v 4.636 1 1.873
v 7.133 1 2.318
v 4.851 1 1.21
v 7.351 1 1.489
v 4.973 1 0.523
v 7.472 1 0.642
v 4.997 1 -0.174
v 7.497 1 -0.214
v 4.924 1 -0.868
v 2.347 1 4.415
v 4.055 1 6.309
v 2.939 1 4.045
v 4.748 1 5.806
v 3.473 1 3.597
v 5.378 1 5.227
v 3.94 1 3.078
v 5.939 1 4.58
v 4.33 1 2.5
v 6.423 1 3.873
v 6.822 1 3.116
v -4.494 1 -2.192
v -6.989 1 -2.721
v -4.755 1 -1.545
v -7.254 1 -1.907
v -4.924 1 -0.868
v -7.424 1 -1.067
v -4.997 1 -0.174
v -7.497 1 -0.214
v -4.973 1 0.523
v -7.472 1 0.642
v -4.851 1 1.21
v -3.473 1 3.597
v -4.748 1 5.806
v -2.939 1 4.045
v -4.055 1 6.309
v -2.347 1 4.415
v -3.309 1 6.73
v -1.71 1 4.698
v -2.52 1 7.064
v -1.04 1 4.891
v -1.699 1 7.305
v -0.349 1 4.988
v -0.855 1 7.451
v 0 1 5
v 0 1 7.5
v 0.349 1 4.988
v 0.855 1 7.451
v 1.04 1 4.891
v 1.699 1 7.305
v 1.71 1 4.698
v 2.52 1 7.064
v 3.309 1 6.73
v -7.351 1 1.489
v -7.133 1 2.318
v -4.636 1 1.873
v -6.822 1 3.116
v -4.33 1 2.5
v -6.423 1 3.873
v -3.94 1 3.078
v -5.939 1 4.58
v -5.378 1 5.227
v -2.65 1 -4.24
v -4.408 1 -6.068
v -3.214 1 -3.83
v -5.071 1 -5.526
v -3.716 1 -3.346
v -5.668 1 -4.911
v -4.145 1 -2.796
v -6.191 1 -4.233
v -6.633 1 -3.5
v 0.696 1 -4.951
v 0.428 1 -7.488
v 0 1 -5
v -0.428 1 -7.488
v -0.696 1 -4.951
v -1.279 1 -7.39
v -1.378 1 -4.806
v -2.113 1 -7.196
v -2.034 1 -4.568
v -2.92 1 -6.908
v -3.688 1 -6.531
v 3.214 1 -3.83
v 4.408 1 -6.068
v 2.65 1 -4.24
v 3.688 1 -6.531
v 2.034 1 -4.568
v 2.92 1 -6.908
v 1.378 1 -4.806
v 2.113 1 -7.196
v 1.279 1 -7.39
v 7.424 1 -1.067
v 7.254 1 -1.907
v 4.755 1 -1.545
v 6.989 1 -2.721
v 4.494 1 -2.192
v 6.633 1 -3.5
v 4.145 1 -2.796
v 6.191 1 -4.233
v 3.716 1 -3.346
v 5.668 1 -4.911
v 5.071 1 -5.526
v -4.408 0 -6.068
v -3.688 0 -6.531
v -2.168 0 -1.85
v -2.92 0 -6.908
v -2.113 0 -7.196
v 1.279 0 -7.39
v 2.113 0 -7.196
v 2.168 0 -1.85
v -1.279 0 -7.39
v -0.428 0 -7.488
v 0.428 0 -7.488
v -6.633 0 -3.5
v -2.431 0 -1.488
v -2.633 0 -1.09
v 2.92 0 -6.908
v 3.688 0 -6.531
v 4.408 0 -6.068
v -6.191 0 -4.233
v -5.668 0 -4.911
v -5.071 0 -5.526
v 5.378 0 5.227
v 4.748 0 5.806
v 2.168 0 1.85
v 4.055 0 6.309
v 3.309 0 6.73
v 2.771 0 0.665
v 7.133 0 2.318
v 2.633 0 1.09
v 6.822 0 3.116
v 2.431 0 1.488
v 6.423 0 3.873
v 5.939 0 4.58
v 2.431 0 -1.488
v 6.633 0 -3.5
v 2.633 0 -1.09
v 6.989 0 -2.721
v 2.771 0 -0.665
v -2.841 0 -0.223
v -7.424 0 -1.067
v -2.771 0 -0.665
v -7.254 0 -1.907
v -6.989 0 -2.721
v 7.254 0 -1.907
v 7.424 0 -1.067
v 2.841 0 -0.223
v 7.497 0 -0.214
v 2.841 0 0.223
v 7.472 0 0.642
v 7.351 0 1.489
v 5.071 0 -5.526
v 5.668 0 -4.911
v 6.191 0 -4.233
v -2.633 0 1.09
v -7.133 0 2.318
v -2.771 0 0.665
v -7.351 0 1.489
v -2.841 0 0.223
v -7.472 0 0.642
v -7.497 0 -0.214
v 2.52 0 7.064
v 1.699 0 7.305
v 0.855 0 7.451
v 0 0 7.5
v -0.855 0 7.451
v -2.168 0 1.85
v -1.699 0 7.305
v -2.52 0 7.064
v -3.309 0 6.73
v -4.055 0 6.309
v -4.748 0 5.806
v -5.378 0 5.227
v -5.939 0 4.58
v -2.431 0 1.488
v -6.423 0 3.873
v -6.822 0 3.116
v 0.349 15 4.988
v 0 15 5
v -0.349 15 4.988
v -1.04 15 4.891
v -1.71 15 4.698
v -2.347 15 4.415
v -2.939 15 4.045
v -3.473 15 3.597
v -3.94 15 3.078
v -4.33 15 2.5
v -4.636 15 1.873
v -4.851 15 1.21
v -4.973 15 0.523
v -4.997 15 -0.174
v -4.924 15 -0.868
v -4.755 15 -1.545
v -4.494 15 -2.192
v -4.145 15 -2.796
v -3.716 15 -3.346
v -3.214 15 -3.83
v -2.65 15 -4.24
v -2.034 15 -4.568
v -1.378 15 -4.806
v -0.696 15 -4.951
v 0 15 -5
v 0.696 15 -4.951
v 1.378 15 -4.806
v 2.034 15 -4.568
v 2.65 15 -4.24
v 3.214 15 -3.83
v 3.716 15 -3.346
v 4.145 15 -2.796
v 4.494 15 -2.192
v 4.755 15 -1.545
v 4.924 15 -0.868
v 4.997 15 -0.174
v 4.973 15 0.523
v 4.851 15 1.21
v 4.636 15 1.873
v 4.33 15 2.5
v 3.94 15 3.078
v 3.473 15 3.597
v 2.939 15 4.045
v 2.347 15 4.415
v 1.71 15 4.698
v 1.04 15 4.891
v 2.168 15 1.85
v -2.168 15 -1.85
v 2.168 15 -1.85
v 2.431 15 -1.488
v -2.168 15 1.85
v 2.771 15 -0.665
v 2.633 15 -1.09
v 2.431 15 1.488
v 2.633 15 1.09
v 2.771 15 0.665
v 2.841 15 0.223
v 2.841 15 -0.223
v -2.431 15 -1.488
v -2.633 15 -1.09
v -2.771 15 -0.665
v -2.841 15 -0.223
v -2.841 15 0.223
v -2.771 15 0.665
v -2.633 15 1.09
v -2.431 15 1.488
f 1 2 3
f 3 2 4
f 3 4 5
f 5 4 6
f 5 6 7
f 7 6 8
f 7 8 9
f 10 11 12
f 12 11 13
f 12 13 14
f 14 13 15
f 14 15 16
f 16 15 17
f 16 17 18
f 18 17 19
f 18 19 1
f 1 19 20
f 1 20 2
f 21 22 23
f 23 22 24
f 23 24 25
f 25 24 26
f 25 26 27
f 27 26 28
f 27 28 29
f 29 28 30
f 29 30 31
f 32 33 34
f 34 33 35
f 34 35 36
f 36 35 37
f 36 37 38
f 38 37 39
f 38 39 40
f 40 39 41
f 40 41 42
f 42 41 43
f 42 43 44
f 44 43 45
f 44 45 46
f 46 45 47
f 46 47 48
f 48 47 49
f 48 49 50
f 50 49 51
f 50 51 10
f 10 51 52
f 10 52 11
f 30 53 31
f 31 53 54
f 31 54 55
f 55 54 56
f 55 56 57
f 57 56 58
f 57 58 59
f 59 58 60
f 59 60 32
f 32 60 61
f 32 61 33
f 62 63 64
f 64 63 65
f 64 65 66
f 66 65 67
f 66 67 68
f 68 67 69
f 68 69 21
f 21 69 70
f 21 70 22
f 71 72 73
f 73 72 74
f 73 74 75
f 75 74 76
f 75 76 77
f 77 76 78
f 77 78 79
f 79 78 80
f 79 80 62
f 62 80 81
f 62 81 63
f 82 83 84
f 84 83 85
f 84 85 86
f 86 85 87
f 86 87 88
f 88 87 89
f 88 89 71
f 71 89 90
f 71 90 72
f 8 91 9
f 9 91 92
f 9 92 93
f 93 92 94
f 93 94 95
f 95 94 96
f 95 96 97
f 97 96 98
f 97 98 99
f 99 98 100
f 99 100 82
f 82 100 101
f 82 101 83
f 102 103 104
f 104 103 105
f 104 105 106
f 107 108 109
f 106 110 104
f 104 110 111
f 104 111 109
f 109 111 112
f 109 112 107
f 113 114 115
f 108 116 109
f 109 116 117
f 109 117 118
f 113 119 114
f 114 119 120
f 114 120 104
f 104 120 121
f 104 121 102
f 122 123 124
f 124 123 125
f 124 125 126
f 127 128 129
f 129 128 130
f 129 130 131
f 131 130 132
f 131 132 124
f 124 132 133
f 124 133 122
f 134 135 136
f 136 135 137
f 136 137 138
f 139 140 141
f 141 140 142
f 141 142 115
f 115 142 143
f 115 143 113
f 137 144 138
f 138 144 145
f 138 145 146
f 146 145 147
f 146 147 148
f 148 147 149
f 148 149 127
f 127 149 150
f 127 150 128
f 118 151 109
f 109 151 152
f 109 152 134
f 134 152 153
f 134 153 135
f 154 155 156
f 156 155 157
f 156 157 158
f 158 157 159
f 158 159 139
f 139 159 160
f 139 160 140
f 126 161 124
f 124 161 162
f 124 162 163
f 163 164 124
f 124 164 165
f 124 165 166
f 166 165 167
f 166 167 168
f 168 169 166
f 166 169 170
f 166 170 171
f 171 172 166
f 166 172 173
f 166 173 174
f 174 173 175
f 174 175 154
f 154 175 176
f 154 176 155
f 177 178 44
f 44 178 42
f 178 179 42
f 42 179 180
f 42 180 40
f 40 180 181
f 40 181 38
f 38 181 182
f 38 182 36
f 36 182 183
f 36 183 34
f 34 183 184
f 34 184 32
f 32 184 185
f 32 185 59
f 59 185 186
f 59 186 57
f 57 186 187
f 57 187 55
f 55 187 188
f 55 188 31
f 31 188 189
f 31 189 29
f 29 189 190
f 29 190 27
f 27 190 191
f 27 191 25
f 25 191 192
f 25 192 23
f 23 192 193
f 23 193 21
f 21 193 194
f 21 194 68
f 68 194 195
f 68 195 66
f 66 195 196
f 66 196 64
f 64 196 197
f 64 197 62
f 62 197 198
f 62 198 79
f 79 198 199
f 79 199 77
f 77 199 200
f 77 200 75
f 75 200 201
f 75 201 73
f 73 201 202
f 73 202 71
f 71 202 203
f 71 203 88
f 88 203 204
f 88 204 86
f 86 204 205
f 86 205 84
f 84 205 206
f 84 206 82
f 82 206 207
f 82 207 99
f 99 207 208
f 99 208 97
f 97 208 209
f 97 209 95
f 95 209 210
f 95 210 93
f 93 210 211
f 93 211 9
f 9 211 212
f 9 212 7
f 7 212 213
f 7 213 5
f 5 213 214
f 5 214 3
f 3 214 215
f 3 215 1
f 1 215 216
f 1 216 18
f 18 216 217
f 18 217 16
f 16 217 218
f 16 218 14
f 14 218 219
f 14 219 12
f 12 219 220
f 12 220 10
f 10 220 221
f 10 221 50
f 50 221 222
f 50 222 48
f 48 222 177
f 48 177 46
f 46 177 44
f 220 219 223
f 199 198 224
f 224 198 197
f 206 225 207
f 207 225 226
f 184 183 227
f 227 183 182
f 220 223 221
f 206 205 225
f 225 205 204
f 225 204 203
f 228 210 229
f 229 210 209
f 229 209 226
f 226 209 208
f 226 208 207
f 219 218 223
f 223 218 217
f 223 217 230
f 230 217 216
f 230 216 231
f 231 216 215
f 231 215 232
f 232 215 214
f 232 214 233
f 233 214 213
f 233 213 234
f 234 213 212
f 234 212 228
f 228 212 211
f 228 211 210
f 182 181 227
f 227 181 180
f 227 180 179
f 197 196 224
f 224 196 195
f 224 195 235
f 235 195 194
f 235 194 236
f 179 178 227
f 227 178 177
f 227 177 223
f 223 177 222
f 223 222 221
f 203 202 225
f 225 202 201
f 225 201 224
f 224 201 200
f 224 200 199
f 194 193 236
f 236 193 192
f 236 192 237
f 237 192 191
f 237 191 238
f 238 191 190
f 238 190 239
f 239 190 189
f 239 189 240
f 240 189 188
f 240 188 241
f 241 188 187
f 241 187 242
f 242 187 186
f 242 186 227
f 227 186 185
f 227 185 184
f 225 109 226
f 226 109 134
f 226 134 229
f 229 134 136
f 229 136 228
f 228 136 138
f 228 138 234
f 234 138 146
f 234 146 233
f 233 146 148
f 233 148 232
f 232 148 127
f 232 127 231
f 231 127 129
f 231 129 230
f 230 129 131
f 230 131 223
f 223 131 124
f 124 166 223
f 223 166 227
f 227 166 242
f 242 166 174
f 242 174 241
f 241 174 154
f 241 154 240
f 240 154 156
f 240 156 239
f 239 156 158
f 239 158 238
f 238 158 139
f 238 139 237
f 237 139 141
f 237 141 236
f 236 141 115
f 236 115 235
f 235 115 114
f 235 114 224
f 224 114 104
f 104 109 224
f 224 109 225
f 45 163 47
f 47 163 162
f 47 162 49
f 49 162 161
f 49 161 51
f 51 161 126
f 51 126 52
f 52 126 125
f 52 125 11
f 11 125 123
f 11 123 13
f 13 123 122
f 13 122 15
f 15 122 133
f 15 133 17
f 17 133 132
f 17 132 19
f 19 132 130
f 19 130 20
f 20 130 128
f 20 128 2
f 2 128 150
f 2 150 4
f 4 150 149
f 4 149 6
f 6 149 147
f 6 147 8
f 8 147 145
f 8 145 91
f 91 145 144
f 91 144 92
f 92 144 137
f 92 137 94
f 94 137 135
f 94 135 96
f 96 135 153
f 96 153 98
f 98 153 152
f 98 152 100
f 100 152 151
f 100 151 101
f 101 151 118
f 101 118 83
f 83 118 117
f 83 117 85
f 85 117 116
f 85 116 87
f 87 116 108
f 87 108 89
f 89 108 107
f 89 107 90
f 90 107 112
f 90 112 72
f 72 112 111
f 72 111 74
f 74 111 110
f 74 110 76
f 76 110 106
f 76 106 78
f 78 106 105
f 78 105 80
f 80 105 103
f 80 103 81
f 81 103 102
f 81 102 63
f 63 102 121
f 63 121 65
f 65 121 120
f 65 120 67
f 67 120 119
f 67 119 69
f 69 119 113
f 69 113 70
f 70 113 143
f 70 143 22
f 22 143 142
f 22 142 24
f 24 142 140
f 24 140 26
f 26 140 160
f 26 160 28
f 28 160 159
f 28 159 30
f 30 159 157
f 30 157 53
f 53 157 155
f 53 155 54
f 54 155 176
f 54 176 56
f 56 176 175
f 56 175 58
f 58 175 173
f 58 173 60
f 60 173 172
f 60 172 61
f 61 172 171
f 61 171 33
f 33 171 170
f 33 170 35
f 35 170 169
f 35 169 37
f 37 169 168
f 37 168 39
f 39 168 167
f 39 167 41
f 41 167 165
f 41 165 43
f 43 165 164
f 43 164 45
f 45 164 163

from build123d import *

# Parameters (mm, degrees)
SKETCH1_R            = 10
BOSS_EXTRUDE2_DEPTH  = 1
SKETCH3_R            = 5
BOSS_EXTRUDE3_DEPTH  = 14
CUT_EXTRUDE1_DEPTH   = 19
SKETCH5_R            = 12.5
BOSS_EXTRUDE4_DEPTH  = 1
CUT_EXTRUDE2_DEPTH   = 19
BOSS_EXTRUDE5_DEPTH  = 2
SKETCH8_R            = 7.5
BOSS_EXTRUDE6_DEPTH  = 2
SKETCH9_R            = 1
CUT_EXTRUDE3_DEPTH   = 25
CUT_EXTRUDE4_DEPTH   = 2
BOSS_EXTRUDE7_DEPTH  = 10
SKETCH14_R           = 1
CUT_EXTRUDE5_DEPTH   = 18
SKETCH15_R           = 1
BOSS_EXTRUDE8_DEPTH  = 17
SKETCH16_R           = 1
CUT_EXTRUDE7_DEPTH   = 10
CUT_EXTRUDE8_START   = -2
CUT_EXTRUDE8_DEPTH   = 2
SKETCH18_R           = 7.5
BOSS_EXTRUDE9_DEPTH  = 1.75
SKETCH19_R           = 7.5
SKETCH19_R_2         = 6.5
CUT_EXTRUDE9_DEPTH   = 1.75
BOSS_EXTRUDE11_START = -15
BOSS_EXTRUDE11_DEPTH = 15
SKETCH23_R           = 1
CUT_EXTRUDE10_DEPTH  = 8.75
SKETCH24_R           = 12.5
SKETCH24_R_2         = 7.5
CUT_EXTRUDE11_DEPTH  = 10
CUT_EXTRUDE12_START  = -10
SKETCH25_R           = 7.5
CUT_EXTRUDE12_DEPTH  = 10


with BuildPart() as part:
    # Sketch1 → Boss-Extrude2 (new body)
    with BuildSketch(Plane(origin=(0, 0, 0), x_dir=(1, 0, 0), z_dir=(0, 1, 0))):
        with Locations(Location((0, 0, 0), (0, 0, 270))):
            Circle(SKETCH1_R)
    extrude(amount=BOSS_EXTRUDE2_DEPTH)

    # Sketch3 → Boss-Extrude3 (add)
    with BuildSketch(Plane(origin=(0, 1, 0), x_dir=(1, 0, 0), z_dir=(0, 1, 0))):
        with Locations(Location((0, 0, 0), (0, 0, 270))):
            Circle(SKETCH3_R)
    extrude(amount=BOSS_EXTRUDE3_DEPTH)

    # Sketch4 → Cut-Extrude1 (cut)
    with BuildSketch(Plane(origin=(0, 15, 0), x_dir=(1, 0, 0), z_dir=(0, 1, 0))):
        with BuildLine():
            Line((0, -2), (0, 2))
            Line((0, 2), (-2.236067977, 2))
            ThreePointArc((-2.236067977, 2), (-3, 0), (-2.236067977, -2))
            Line((-2.236067977, -2), (0, -2))
        make_face()
        with BuildLine():
            Line((2.236067977, 2), (0, 2))
            Line((0, 2), (0, -2))
            Line((0, -2), (2.236067977, -2))
            ThreePointArc((2.236067977, -2), (2.802517077, -1.070466269), (3, 0))
            ThreePointArc((3, 0), (2.802517077, 1.070466269), (2.236067977, 2))
        make_face()
    extrude(amount=-CUT_EXTRUDE1_DEPTH, mode=Mode.SUBTRACT)

    # Sketch5 → Boss-Extrude4 (add)
    with BuildSketch(Plane(origin=(0, 1, 0), x_dir=(1, 0, 0), z_dir=(0, 1, 0))):
        with Locations(Location((0, 0, 0), (0, 0, 270))):
            Circle(SKETCH5_R)
    extrude(amount=-BOSS_EXTRUDE4_DEPTH)

    # Sketch6 → Cut-Extrude2 (cut)
    with BuildSketch(Plane(origin=(0, 1, 0), x_dir=(1, 0, 0), z_dir=(0, 1, 0))):
        with BuildLine():
            Line((2.236067977, 2), (-2.236067977, 2))
            ThreePointArc((-2.236067977, 2), (-3, 0), (-2.236067977, -2))
            Line((-2.236067977, -2), (2.236067977, -2))
            ThreePointArc((2.236067977, -2), (3, 0), (2.236067977, 2))
        make_face()
    extrude(amount=-CUT_EXTRUDE2_DEPTH, mode=Mode.SUBTRACT)

    # Sketch22 → Boss-Extrude11 (add)
    with BuildSketch(Plane.XZ.offset(BOSS_EXTRUDE11_START)):
        with BuildLine():
            Line((-2.236067977, 2), (2.236067977, 2))
            ThreePointArc((2.236067977, 2), (3, 0), (2.236067977, -2))
            Line((2.236067977, -2), (-2.236067977, -2))
            ThreePointArc((-2.236067977, -2), (-3, 0), (-2.236067977, 2))
        make_face()
        with BuildLine():
            ThreePointArc((2.167948339, -1.85), (2.85, 0), (2.167948339, 1.85))
            Line((2.167948339, 1.85), (-2.167948339, 1.85))
            ThreePointArc((-2.167948339, 1.85), (-2.85, 0), (-2.167948339, -1.85))
            Line((-2.167948339, -1.85), (2.167948339, -1.85))
        make_face(mode=Mode.SUBTRACT)
    extrude(amount=BOSS_EXTRUDE11_DEPTH)

    # Sketch24 → Cut-Extrude11 (cut)
    with BuildSketch(Plane(origin=(0, 1, 0), x_dir=(1, 0, 0), z_dir=(0, 1, 0))):
        Circle(SKETCH24_R)
        with Locations(Location((0, 0, 0), (0, 0, 270))):
            Circle(SKETCH24_R_2, mode=Mode.SUBTRACT)
    extrude(amount=-CUT_EXTRUDE11_DEPTH, mode=Mode.SUBTRACT)


with BuildPart() as body_2:
    # Sketch7 → Boss-Extrude5 (new body)
    with BuildSketch(Plane(origin=(0, 15, 0), x_dir=(1, 0, 0), z_dir=(0, 1, 0))):
        with BuildLine():
            Line((-2.236067977, -2), (2.236067977, -2))
            ThreePointArc((2.236067977, -2), (3, 0), (2.236067977, 2))
            Line((2.236067977, 2), (-2.236067977, 2))
            ThreePointArc((-2.236067977, 2), (-3, 0), (-2.236067977, -2))
        make_face()
    extrude(amount=BOSS_EXTRUDE5_DEPTH)

    # Sketch8 → Boss-Extrude6 (add)
    with BuildSketch(Plane(origin=(0, 17, 0), x_dir=(1, 0, 0), z_dir=(0, 1, 0))):
        with Locations(Location((0, 0, 0), (0, 0, 270))):
            Circle(SKETCH8_R)
    extrude(amount=BOSS_EXTRUDE6_DEPTH)

    # Sketch9 → Cut-Extrude3 (cut)
    with BuildSketch(Plane(origin=(0, 19, 0), x_dir=(1, 0, 0), z_dir=(0, 1, 0))):
        with Locations(Location((0, 0, 0), (0, 0, 270))):
            Circle(SKETCH9_R)
    extrude(amount=-CUT_EXTRUDE3_DEPTH, mode=Mode.SUBTRACT)

    # Sketch10 → Cut-Extrude4 (cut)
    with BuildSketch(Plane.XZ.offset(-15)):
        with BuildLine():
            Line((-2.121320344, -1.75), (2.121320344, -1.75))
            ThreePointArc((2.121320344, -1.75), (2.75, 0), (2.121320344, 1.75))
            Line((2.121320344, 1.75), (-2.121320344, 1.75))
            ThreePointArc((-2.121320344, 1.75), (-2.75, 0), (-2.121320344, -1.75))
        make_face()
    extrude(amount=-CUT_EXTRUDE4_DEPTH, mode=Mode.SUBTRACT)

    # Sketch11 → Boss-Extrude7 (add)
    with BuildSketch(Plane.XZ.offset(-17)):
        with BuildLine():
            Line((-2.121320344, -1.75), (2.121320344, -1.75))
            ThreePointArc((2.121320344, -1.75), (2.75, 0), (2.121320344, 1.75))
            Line((2.121320344, 1.75), (-2.121320344, 1.75))
            ThreePointArc((-2.121320344, 1.75), (-2.75, 0), (-2.121320344, -1.75))
        make_face()
    extrude(amount=BOSS_EXTRUDE7_DEPTH)

    # Sketch14 → Cut-Extrude5 (cut)
    with BuildSketch(Plane(origin=(0, 17, 0), x_dir=(1, 0, 0), z_dir=(0, 1, 0))):
        with Locations(Location((0, 0, 0), (0, 0, 270))):
            Circle(SKETCH14_R)
    extrude(amount=-CUT_EXTRUDE5_DEPTH, mode=Mode.SUBTRACT)

    # Sketch15 → Boss-Extrude8 (add)
    with BuildSketch(Plane.XZ.offset(-7)):
        with BuildLine():
            Line((-2.121320344, -1.75), (2.121320344, -1.75))
            ThreePointArc((2.121320344, -1.75), (2.75, 0), (2.121320344, 1.75))
            Line((2.121320344, 1.75), (-2.121320344, 1.75))
            ThreePointArc((-2.121320344, 1.75), (-2.75, 0), (-2.121320344, -1.75))
        make_face()
        with Locations(Location((0, 0, 0), (0, 0, 270))):
            Circle(SKETCH15_R, mode=Mode.SUBTRACT)
    extrude(amount=-BOSS_EXTRUDE8_DEPTH)

    # Sketch16 → Cut-Extrude7 (cut)
    with BuildSketch(Plane.XZ.offset(-7)):
        with BuildLine():
            Line((-2.121320344, -1.75), (2.121320344, -1.75))
            ThreePointArc((2.121320344, -1.75), (2.75, 0), (2.121320344, 1.75))
            Line((2.121320344, 1.75), (-2.121320344, 1.75))
            ThreePointArc((-2.121320344, 1.75), (-2.75, 0), (-2.121320344, -1.75))
        make_face()
        with Locations(Location((0, 0, 0), (0, 0, 90))):
            Circle(SKETCH16_R, mode=Mode.SUBTRACT)
    extrude(amount=-CUT_EXTRUDE7_DEPTH, mode=Mode.SUBTRACT)

    # Sketch17 → Cut-Extrude8 (cut)
    with BuildSketch(Plane.XZ.offset(-15).offset(CUT_EXTRUDE8_START)):
        with BuildLine():
            Line((-2.236067977, -2), (2.236067977, -2))
            ThreePointArc((2.236067977, -2), (3, 0), (2.236067977, 2))
            Line((2.236067977, 2), (-2.236067977, 2))
            ThreePointArc((-2.236067977, 2), (-3, 0), (-2.236067977, -2))
        make_face()
    extrude(amount=CUT_EXTRUDE8_DEPTH, mode=Mode.SUBTRACT)

    # Sketch18 → Boss-Extrude9 (add)
    with BuildSketch(Plane.XZ.offset(-17)):
        with Locations(Location((0, 0, 0), (0, 0, 270))):
            Circle(SKETCH18_R)
    extrude(amount=BOSS_EXTRUDE9_DEPTH)

    # Sketch19 → Cut-Extrude9 (cut)
    # profile 1 of 2: a face of its own
    with BuildSketch(Plane(origin=(0, 19, 0), x_dir=(1, 0, 0), z_dir=(0, 1, 0))):
        with Locations(Location((0, 0, 0), (0, 0, 90))):
            Circle(SKETCH19_R)
        Circle(SKETCH19_R_2, mode=Mode.SUBTRACT)
    # profile 2 of 2: a face of its own
    with BuildSketch(Plane(origin=(0, 19, 0), x_dir=(1, 0, 0), z_dir=(0, 1, 0))):
        Circle(SKETCH19_R_2)
        with BuildLine():
            Line((2.121320344, -1.75), (-2.121320344, -1.75))
            ThreePointArc((-2.121320344, -1.75), (-2.75, 0), (-2.121320344, 1.75))
            Line((-2.121320344, 1.75), (2.121320344, 1.75))
            ThreePointArc((2.121320344, 1.75), (2.75, 0), (2.121320344, -1.75))
        make_face(mode=Mode.SUBTRACT)
    extrude(amount=-CUT_EXTRUDE9_DEPTH, mode=Mode.SUBTRACT)

    # Sketch23 → Cut-Extrude10 (cut)
    with BuildSketch(Plane(origin=(0, 24, 0), x_dir=(1, 0, 0), z_dir=(0, 1, 0))):
        with Locations(Location((0, 0, 0), (0, 0, 90))):
            Circle(SKETCH23_R)
    extrude(amount=-CUT_EXTRUDE10_DEPTH, mode=Mode.SUBTRACT)

    # Sketch25 → Cut-Extrude12 (cut)
    with BuildSketch(Plane.XZ.offset(-15.25).offset(CUT_EXTRUDE12_START)):
        with Locations(Location((0, 0, 0), (0, 0, 90))):
            Circle(SKETCH25_R)
    extrude(amount=CUT_EXTRUDE12_DEPTH, mode=Mode.SUBTRACT)


solid = part.part
